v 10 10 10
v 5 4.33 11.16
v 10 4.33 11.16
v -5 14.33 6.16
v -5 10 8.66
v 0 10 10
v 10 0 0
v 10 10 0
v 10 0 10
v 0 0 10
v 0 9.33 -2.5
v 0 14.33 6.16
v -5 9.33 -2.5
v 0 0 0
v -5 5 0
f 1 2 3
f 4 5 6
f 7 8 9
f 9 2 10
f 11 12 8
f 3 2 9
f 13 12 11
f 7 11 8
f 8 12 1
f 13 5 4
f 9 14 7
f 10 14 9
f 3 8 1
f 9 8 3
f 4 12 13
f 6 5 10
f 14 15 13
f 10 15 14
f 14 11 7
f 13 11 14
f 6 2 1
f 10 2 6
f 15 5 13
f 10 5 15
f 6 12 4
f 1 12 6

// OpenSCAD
module intersection(width, height, depth, angle) {
  hull() {
    translate([0, 0, 0]) cube([width, height, depth]);
    translate([width/2, height/2, 0]) rotate([angle, 0, 0]) cube([width/2, height/2, depth]);
    translate([-width/2, height/2, 0]) rotate([-angle, 0, 0]) cube([width/2, height/2, depth]);
  }
}

intersection(width = 10, height = 10, depth = 10, angle = 30);
